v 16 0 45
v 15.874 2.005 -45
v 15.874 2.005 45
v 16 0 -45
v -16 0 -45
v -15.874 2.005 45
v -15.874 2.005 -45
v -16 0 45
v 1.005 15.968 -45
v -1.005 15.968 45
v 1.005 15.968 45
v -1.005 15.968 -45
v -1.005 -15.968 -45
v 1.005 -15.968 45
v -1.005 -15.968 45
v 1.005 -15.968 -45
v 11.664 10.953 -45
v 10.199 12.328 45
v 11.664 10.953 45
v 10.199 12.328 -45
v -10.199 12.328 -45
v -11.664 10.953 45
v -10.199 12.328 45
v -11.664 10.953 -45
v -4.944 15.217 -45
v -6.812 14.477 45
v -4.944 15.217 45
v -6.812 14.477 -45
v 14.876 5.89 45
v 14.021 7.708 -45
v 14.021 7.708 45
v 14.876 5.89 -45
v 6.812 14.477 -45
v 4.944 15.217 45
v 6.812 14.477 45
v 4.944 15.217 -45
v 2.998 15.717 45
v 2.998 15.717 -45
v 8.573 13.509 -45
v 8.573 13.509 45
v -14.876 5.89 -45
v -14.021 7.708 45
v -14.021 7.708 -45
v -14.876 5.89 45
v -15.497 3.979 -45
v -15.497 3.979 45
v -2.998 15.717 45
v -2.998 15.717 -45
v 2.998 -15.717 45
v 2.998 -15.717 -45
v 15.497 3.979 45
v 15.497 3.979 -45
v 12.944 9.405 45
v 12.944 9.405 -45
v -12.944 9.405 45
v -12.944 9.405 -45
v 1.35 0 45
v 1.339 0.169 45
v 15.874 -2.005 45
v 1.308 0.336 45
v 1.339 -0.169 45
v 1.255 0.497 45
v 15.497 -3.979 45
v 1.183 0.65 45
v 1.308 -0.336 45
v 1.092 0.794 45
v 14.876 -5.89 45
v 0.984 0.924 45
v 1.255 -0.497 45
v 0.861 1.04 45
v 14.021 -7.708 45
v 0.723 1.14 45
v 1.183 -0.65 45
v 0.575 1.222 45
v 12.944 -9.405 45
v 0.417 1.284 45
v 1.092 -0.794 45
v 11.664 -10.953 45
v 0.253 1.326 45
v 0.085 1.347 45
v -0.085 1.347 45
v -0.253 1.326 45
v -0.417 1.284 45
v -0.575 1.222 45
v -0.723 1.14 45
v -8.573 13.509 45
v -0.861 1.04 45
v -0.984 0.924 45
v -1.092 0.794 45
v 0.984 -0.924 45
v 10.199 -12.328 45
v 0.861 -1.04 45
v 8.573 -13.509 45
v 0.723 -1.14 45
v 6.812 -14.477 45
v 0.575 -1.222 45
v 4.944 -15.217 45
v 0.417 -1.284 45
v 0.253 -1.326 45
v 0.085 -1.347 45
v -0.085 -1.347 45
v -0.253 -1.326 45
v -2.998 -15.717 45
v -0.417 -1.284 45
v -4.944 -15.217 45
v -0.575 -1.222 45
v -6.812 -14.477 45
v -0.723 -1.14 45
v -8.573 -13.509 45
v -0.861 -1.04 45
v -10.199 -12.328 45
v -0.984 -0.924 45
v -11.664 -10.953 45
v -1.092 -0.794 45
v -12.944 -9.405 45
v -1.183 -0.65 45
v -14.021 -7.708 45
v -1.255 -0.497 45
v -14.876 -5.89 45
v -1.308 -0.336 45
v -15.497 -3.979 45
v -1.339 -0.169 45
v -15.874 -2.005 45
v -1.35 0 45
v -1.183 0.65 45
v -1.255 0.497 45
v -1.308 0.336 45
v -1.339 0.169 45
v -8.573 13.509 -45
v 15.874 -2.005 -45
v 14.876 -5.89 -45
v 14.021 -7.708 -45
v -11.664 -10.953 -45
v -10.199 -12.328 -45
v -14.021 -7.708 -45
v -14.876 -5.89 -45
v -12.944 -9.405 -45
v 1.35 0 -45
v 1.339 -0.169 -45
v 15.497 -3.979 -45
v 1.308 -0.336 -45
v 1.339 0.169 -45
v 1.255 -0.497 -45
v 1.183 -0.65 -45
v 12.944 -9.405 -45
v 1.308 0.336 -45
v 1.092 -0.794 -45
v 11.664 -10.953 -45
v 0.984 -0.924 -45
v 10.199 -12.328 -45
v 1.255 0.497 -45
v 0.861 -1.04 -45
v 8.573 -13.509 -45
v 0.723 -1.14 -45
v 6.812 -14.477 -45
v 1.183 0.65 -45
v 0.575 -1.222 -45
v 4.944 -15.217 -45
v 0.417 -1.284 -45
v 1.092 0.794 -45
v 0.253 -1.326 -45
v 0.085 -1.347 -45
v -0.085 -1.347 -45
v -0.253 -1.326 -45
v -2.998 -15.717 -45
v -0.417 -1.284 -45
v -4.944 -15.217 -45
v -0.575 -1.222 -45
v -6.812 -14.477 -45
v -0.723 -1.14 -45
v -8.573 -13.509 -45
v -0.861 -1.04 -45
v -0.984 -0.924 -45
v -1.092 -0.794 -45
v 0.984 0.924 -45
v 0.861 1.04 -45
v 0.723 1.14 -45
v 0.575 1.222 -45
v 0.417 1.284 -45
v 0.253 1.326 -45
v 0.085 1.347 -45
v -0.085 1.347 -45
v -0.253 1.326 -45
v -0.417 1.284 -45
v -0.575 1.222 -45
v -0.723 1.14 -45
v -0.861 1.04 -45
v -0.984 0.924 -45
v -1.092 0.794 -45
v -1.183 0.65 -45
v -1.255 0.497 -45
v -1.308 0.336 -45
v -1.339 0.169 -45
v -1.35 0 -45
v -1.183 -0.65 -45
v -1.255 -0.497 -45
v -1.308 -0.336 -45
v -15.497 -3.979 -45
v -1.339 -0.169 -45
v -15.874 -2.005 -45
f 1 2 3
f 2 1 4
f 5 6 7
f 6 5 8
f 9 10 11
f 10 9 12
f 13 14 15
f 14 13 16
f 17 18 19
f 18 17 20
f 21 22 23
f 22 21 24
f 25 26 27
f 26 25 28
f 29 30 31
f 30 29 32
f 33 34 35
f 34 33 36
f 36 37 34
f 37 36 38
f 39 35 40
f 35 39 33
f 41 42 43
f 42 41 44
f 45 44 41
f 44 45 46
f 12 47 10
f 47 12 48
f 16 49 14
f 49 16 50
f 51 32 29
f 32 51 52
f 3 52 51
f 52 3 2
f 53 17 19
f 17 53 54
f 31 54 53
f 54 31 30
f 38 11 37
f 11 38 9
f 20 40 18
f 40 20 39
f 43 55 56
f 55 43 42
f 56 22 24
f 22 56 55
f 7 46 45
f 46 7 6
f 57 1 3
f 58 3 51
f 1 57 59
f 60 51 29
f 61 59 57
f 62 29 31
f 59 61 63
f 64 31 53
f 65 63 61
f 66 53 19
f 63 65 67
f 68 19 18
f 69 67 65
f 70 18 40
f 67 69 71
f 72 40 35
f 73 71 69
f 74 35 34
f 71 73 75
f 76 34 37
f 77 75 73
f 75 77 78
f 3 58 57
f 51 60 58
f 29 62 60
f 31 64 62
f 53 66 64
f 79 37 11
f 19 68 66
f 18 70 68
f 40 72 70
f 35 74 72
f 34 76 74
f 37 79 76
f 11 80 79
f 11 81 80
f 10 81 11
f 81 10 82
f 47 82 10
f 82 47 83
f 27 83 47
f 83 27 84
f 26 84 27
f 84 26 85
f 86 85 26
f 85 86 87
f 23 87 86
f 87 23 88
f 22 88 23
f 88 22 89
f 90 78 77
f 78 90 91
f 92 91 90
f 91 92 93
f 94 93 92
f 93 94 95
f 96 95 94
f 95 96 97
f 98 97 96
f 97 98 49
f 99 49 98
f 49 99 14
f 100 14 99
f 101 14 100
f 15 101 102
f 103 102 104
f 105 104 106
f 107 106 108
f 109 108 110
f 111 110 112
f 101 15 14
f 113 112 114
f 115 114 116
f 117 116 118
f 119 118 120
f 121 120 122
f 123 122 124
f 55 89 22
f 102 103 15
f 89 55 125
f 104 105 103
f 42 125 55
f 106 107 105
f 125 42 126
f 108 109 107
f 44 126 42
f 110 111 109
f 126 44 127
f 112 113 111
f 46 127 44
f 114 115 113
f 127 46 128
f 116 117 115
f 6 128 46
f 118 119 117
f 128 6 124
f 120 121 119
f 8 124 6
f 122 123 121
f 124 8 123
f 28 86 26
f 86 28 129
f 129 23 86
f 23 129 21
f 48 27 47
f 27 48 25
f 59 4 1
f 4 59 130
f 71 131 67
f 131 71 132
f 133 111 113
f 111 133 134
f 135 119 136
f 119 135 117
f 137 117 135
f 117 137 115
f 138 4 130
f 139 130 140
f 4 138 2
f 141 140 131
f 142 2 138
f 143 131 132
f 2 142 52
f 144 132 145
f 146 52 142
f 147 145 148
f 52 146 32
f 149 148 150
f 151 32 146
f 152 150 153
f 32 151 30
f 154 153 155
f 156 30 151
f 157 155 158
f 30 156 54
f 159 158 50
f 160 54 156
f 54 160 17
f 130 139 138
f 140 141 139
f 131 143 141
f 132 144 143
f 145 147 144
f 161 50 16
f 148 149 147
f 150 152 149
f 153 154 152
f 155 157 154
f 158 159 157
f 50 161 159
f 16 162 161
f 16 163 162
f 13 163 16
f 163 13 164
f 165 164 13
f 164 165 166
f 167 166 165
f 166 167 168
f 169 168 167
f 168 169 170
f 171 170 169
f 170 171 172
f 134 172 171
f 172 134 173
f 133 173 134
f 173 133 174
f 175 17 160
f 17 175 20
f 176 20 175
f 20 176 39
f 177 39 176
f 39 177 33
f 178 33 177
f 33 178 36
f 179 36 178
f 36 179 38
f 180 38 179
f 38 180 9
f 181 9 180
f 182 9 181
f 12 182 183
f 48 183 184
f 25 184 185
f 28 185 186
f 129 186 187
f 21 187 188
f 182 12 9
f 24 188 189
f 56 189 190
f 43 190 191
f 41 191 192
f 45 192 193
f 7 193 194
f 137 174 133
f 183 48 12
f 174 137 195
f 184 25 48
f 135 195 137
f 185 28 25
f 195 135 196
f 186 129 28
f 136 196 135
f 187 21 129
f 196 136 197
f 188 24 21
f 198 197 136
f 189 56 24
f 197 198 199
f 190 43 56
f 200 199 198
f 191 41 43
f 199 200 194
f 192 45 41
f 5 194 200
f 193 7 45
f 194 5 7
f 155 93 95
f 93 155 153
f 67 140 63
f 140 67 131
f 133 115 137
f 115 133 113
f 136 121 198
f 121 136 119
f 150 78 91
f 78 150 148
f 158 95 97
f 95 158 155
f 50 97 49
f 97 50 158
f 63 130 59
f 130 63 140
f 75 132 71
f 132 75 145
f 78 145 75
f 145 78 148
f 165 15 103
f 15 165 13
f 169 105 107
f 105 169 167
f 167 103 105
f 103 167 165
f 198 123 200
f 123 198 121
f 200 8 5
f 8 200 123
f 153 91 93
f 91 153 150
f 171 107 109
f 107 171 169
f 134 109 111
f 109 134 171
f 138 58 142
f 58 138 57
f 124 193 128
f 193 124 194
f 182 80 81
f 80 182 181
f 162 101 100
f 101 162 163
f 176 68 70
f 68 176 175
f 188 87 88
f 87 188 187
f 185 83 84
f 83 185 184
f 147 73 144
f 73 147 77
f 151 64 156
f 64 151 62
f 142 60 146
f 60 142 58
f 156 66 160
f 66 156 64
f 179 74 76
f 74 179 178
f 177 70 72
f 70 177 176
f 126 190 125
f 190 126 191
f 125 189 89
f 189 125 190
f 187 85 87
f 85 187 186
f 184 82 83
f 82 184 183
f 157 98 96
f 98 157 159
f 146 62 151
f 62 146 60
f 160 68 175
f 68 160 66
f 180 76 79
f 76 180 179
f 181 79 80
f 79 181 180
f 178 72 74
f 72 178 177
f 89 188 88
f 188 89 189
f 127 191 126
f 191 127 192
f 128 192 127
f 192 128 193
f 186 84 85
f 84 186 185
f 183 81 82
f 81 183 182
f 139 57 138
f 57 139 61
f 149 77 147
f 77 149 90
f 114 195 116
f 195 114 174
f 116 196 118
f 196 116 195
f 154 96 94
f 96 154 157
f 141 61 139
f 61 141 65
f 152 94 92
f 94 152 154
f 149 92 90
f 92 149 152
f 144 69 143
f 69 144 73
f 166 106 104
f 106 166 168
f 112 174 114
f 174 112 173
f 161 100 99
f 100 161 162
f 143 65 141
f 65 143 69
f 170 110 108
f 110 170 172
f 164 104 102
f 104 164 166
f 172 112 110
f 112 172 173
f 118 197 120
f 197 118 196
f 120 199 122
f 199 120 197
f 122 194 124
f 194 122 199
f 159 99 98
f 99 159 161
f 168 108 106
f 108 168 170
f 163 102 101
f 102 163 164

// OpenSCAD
$fn = 50;


difference() {
	union() {
		translate(v = [0, 0, -45.0000000000]) {
			cylinder(h = 90, r = 16.0000000000);
		}
	}
	union() {
		translate(v = [0, 0, -100.0000000000]) {
			cylinder(h = 200, r = 1.3500000000);
		}
	}
}
